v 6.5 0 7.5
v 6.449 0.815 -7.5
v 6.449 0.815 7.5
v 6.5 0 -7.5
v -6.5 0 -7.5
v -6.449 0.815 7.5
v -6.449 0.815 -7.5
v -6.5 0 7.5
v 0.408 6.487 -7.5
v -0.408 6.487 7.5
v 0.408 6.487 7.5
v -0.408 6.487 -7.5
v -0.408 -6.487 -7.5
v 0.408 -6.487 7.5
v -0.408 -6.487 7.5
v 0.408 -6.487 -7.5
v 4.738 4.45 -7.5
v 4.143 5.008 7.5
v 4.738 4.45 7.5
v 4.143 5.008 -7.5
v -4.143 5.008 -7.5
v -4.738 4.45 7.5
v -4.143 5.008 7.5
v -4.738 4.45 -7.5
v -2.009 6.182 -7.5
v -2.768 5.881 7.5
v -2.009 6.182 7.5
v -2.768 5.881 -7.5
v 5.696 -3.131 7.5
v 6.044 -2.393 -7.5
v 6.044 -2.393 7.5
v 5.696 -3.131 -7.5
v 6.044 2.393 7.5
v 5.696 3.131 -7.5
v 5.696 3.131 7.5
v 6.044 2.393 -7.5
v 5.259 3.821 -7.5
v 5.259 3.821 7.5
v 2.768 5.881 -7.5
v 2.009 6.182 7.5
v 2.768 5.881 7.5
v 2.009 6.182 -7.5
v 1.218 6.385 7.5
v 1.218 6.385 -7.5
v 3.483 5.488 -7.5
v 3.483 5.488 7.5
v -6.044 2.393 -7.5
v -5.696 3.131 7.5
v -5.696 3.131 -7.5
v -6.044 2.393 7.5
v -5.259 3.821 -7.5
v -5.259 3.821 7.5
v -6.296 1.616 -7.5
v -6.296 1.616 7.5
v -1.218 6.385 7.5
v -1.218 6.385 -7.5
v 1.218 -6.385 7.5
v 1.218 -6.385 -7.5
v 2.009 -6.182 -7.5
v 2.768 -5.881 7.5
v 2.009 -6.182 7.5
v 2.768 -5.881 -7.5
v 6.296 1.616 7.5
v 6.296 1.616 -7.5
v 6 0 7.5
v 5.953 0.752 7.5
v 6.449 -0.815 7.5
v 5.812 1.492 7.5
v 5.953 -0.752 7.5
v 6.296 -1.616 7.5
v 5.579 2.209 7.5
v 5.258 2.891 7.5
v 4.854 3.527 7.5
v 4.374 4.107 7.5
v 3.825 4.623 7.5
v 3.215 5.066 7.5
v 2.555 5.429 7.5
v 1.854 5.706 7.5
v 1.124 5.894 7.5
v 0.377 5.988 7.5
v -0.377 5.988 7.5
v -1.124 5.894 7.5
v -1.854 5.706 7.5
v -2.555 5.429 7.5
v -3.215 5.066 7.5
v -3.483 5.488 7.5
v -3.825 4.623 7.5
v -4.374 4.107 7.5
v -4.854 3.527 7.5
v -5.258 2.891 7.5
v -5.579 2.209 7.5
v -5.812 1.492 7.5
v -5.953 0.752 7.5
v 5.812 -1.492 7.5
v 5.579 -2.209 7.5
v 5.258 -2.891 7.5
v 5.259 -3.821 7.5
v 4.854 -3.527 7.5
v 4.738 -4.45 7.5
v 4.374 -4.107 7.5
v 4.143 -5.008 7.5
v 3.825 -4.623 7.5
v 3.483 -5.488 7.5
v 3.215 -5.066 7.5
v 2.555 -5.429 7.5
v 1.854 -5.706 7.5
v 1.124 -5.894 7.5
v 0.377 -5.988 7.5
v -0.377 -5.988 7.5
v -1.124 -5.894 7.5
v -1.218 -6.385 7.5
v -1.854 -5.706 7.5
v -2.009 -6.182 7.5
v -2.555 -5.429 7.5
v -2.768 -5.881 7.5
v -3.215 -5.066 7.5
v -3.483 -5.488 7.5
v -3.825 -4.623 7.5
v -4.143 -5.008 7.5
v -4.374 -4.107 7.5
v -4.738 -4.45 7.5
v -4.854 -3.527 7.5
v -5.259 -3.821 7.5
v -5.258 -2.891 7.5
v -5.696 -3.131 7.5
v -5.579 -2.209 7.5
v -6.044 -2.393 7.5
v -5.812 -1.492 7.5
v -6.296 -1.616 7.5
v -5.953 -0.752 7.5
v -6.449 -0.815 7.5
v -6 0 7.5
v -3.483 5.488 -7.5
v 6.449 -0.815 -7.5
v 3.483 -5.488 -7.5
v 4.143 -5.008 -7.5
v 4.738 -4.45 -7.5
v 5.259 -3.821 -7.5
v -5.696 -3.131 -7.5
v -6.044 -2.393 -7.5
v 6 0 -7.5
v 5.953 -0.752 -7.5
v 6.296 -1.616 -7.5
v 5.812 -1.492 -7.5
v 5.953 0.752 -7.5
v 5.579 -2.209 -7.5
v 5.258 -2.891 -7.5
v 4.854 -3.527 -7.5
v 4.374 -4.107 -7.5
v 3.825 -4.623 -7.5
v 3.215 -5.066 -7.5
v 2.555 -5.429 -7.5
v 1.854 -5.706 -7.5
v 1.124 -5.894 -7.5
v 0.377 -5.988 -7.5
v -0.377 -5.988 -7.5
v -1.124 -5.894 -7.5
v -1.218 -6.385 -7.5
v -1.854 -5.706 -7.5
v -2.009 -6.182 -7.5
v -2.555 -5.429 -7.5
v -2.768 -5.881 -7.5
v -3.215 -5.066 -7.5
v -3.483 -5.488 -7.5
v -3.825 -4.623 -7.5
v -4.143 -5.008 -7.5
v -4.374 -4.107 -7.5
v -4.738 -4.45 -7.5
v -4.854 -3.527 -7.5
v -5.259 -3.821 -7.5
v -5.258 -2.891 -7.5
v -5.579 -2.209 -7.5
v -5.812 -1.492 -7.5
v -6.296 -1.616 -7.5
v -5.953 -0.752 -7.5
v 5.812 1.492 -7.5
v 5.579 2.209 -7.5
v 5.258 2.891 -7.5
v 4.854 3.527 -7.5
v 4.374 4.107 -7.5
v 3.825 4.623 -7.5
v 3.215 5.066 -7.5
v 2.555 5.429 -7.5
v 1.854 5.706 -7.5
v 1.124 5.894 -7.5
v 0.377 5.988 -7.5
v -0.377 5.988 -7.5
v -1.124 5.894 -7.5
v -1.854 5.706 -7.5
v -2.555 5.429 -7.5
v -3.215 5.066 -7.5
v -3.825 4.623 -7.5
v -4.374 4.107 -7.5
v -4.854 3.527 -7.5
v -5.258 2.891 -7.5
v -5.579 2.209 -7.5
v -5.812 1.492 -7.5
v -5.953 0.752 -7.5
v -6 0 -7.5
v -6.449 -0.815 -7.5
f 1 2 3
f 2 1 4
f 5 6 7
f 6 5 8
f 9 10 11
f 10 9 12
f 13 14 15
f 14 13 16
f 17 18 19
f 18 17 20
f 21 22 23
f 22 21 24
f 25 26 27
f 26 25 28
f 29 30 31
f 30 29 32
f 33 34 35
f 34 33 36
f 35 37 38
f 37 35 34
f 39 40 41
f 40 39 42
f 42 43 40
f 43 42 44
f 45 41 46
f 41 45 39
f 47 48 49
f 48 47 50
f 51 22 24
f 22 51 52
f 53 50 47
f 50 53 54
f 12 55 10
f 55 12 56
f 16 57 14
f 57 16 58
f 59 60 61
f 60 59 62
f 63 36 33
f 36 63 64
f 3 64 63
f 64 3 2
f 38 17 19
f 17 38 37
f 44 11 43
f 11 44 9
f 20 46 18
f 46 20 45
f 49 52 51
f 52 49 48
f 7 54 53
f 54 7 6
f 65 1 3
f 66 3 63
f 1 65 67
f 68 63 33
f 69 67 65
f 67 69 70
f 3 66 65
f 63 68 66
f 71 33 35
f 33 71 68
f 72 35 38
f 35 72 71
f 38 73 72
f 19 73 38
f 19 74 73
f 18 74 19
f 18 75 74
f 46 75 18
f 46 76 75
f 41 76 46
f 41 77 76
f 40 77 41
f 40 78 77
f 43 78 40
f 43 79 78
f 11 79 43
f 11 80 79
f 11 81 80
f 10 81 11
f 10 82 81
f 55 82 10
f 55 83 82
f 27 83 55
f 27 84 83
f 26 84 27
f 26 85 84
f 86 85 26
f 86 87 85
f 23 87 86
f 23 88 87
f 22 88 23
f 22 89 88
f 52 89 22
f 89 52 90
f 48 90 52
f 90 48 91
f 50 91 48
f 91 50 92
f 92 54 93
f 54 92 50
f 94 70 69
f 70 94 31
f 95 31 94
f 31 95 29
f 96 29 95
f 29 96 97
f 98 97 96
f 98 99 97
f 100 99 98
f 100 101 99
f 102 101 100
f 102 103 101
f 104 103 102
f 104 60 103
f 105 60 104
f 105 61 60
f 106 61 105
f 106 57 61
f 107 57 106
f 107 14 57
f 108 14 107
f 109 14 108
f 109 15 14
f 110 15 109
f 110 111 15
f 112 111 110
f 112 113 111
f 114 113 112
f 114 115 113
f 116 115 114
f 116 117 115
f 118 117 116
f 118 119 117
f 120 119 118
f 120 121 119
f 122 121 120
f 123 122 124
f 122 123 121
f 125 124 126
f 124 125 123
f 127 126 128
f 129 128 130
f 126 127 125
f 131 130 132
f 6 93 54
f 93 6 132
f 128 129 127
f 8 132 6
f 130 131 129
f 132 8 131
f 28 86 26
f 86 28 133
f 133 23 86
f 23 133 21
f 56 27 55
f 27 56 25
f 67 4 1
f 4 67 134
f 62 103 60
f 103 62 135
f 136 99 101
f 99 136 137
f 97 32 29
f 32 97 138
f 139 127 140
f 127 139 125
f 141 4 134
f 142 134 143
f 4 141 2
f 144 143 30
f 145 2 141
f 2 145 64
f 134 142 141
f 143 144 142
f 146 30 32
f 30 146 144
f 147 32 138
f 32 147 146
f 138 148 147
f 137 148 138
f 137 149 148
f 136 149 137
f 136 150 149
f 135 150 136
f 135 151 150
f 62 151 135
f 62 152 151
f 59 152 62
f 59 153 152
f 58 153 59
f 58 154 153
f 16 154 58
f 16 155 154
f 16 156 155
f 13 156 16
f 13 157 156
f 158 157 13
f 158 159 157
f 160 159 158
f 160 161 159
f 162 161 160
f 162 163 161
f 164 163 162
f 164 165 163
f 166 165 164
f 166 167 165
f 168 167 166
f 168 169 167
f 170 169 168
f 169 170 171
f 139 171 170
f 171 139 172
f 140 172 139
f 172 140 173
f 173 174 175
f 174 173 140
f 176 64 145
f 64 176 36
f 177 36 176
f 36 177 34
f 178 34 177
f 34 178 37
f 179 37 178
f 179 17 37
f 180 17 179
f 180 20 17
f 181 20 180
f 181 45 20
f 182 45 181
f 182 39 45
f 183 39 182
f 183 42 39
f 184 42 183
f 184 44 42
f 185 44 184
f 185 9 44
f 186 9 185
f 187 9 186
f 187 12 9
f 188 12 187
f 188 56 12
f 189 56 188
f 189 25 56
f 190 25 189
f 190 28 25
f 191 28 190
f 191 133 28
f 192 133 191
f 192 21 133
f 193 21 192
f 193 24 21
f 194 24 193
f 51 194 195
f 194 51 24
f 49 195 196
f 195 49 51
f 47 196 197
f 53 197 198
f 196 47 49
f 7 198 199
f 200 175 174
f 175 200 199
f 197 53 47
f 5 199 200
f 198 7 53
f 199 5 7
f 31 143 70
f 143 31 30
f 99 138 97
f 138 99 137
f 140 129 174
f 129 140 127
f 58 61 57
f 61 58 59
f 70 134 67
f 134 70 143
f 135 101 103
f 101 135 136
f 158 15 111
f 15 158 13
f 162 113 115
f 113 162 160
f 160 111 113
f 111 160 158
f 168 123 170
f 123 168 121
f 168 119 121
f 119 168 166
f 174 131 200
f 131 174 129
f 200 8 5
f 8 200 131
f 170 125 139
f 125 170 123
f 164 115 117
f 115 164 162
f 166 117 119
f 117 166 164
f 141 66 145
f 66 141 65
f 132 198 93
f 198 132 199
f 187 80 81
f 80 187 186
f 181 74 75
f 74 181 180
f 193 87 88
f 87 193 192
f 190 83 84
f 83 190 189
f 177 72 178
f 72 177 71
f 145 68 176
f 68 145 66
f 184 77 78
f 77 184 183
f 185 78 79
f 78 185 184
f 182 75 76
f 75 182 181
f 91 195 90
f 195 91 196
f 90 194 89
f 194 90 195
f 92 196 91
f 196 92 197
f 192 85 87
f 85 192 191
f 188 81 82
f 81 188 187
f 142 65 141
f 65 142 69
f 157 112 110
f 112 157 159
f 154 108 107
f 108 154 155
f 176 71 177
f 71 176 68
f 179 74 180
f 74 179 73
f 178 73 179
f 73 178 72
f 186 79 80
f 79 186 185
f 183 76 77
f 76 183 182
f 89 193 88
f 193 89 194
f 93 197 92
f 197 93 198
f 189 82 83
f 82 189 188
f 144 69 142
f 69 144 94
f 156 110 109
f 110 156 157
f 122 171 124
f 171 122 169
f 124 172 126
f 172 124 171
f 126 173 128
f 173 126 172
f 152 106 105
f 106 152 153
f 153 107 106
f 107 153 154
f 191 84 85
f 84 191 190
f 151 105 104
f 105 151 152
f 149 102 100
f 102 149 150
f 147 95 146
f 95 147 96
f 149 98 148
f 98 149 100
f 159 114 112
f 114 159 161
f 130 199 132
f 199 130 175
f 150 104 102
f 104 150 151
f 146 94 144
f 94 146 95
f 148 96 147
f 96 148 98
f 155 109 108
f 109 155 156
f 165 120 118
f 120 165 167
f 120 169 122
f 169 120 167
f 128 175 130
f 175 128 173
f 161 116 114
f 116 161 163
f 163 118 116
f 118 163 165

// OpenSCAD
$fn = 50;


difference() {
	union() {
		translate(v = [0, 0, -7.5000000000]) {
			cylinder(h = 15, r = 6.5000000000);
		}
	}
	union() {
		translate(v = [0, 0, -100.0000000000]) {
			cylinder(h = 200, r = 6);
		}
	}
}
